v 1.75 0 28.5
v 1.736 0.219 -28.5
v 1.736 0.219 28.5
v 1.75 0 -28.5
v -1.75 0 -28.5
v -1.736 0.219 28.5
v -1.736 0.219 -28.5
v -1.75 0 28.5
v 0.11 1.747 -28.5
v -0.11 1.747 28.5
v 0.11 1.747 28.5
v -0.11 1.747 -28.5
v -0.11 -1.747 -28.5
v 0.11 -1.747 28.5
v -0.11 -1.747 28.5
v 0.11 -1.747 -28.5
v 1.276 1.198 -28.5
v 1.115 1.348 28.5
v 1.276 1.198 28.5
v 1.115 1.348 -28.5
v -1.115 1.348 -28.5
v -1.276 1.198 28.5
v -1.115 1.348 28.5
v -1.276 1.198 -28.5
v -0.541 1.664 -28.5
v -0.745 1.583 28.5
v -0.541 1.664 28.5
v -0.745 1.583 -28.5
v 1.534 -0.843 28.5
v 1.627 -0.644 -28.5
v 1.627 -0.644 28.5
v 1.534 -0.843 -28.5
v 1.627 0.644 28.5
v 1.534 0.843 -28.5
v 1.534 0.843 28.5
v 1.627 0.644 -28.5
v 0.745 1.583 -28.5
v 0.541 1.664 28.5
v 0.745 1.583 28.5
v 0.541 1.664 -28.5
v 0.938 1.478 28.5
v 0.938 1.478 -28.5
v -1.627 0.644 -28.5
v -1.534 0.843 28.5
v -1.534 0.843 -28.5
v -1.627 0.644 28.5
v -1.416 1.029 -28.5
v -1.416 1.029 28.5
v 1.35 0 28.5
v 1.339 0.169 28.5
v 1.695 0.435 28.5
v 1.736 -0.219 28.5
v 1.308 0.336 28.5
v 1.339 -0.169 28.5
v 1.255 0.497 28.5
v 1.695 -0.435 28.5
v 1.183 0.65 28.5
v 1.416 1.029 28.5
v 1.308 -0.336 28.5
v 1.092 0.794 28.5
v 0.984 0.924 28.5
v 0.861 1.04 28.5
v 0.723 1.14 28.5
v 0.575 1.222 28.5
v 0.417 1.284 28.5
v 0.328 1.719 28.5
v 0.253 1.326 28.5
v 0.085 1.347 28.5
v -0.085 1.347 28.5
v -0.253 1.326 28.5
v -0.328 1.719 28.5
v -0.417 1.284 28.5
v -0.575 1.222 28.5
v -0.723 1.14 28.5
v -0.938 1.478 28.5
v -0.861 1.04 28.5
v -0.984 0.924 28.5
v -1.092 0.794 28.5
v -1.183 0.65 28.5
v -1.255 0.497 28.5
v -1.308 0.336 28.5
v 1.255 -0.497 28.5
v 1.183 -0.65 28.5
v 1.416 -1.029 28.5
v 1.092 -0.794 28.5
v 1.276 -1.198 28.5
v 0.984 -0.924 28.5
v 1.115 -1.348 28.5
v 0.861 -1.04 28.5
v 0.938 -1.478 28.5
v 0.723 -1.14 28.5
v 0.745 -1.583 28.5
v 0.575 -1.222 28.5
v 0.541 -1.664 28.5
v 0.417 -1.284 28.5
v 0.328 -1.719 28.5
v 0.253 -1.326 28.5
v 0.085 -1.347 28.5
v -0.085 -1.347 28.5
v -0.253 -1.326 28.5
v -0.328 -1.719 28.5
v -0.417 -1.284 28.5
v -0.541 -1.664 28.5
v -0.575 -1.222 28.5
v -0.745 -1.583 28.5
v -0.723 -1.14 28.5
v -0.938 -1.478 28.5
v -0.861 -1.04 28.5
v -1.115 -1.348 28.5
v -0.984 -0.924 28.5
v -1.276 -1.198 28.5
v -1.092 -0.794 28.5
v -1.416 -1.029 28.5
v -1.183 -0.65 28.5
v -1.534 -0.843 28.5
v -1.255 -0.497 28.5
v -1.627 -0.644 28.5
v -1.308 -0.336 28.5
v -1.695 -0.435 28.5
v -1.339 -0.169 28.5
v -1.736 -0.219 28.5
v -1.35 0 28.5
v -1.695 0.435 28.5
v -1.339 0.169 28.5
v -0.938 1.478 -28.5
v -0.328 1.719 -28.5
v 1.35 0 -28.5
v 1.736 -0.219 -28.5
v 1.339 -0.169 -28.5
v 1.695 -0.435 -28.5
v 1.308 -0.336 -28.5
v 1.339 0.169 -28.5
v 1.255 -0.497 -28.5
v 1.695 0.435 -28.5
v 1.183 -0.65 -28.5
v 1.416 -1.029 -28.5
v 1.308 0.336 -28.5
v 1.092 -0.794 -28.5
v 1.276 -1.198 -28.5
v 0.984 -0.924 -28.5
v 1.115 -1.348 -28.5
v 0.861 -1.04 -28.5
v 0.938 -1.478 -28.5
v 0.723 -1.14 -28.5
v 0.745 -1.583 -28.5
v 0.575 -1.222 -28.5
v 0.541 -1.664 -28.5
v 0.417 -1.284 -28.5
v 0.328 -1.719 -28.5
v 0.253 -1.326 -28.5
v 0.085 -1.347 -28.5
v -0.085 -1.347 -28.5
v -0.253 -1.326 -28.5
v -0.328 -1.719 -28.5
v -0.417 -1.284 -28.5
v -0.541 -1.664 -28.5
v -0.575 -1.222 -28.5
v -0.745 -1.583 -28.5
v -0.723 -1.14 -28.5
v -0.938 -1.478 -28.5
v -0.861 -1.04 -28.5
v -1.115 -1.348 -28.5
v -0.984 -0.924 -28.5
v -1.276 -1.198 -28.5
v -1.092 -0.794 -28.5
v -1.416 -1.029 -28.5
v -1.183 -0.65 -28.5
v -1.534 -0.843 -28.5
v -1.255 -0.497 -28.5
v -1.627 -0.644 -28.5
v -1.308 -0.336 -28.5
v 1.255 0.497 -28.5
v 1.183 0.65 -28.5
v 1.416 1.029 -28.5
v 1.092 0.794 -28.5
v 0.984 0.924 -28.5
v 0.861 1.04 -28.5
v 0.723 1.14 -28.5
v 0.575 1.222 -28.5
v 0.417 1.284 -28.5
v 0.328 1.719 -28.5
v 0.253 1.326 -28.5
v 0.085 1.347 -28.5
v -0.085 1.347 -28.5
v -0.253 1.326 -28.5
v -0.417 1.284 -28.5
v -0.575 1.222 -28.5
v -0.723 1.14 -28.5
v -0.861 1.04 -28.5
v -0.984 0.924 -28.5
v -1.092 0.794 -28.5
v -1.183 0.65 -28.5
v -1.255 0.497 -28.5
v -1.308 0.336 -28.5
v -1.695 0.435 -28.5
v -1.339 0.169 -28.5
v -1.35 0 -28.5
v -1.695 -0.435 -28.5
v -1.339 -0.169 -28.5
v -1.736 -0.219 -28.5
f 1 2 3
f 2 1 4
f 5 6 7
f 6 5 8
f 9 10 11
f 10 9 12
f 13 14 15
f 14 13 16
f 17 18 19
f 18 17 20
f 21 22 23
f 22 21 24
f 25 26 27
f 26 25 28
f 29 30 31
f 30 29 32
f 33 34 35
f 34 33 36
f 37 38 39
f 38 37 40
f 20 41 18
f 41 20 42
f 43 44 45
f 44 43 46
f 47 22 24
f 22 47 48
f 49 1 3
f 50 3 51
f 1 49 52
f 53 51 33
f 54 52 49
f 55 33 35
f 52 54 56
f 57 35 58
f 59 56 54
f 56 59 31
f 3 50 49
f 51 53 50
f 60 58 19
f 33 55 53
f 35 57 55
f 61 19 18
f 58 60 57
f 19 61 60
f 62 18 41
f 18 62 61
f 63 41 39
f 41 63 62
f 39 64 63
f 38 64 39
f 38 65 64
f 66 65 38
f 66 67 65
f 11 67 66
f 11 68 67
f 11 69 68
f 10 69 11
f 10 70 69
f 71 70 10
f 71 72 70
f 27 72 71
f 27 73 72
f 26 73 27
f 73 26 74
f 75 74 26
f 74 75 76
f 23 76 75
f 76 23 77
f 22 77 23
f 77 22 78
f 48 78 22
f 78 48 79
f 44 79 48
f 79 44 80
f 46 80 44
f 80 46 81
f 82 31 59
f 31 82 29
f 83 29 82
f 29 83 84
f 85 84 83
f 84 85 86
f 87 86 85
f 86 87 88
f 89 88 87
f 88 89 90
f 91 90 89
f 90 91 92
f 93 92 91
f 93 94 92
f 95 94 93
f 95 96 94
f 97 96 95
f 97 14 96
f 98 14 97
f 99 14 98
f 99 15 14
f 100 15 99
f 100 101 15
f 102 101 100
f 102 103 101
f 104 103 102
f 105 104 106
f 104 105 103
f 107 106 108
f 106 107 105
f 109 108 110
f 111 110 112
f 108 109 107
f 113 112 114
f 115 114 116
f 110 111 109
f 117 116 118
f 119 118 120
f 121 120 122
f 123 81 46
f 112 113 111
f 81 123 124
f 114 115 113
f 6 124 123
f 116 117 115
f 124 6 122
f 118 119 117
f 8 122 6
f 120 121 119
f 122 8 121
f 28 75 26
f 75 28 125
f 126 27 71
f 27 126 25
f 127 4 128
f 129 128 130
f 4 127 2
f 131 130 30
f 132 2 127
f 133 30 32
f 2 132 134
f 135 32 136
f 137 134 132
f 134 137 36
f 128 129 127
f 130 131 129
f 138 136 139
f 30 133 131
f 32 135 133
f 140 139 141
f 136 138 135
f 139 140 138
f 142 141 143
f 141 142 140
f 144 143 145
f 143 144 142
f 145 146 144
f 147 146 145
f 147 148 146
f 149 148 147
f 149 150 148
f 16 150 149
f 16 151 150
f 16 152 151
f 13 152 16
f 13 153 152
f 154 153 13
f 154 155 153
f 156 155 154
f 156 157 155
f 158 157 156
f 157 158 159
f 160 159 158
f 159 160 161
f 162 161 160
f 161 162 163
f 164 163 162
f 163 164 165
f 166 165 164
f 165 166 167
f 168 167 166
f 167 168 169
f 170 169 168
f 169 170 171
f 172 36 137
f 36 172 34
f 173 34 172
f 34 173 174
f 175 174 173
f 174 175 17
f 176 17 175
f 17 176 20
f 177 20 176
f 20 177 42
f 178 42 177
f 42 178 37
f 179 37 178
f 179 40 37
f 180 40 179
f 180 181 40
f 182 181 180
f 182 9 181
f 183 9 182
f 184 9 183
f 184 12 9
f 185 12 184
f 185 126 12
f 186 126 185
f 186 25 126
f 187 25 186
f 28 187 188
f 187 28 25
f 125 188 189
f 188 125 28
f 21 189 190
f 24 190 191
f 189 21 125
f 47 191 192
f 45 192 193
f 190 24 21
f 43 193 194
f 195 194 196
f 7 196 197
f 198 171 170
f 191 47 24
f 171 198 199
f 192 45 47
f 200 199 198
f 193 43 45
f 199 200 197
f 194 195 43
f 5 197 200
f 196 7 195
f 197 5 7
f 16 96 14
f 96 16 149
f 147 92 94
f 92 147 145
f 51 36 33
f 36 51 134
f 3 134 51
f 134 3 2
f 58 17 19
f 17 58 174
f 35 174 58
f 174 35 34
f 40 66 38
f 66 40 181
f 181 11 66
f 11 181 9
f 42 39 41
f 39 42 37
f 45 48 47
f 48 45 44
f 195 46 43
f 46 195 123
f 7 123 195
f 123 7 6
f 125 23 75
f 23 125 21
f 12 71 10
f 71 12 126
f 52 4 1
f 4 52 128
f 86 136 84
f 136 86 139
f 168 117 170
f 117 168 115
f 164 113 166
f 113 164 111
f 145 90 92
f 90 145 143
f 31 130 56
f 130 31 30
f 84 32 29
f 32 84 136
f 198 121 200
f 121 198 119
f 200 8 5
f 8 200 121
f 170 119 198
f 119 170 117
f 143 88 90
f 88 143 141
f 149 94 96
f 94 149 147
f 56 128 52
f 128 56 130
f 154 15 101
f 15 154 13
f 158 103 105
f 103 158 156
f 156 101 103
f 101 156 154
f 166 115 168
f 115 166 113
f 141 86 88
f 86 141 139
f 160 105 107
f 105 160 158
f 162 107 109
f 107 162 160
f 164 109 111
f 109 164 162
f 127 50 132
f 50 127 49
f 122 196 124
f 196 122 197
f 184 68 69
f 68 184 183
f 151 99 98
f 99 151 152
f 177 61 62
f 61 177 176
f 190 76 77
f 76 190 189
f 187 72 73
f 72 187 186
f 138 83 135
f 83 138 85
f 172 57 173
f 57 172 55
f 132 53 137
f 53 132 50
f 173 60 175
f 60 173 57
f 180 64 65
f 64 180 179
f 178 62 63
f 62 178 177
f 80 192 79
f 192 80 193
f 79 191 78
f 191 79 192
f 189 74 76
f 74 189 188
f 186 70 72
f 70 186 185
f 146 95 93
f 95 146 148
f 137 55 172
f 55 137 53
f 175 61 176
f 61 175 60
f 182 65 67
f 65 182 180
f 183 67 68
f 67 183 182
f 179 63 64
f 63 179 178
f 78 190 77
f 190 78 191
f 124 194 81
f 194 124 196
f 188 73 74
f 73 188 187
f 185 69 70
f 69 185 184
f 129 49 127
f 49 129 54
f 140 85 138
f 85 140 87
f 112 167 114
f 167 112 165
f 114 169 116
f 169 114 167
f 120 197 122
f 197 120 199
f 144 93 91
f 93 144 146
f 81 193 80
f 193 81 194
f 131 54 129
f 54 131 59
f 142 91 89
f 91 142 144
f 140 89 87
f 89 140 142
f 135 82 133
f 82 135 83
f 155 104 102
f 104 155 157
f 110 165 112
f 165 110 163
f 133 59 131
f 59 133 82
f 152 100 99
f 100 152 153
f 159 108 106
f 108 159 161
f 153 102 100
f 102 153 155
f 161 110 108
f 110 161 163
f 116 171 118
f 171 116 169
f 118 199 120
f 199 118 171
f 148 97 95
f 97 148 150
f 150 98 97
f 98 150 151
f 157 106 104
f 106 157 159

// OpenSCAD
$fn = 50;


difference() {
	union() {
		translate(v = [0, 0, -28.5000000000]) {
			cylinder(h = 57, r = 1.7500000000);
		}
	}
	union() {
		translate(v = [0, 0, -100.0000000000]) {
			cylinder(h = 200, r = 1.3500000000);
		}
	}
}
